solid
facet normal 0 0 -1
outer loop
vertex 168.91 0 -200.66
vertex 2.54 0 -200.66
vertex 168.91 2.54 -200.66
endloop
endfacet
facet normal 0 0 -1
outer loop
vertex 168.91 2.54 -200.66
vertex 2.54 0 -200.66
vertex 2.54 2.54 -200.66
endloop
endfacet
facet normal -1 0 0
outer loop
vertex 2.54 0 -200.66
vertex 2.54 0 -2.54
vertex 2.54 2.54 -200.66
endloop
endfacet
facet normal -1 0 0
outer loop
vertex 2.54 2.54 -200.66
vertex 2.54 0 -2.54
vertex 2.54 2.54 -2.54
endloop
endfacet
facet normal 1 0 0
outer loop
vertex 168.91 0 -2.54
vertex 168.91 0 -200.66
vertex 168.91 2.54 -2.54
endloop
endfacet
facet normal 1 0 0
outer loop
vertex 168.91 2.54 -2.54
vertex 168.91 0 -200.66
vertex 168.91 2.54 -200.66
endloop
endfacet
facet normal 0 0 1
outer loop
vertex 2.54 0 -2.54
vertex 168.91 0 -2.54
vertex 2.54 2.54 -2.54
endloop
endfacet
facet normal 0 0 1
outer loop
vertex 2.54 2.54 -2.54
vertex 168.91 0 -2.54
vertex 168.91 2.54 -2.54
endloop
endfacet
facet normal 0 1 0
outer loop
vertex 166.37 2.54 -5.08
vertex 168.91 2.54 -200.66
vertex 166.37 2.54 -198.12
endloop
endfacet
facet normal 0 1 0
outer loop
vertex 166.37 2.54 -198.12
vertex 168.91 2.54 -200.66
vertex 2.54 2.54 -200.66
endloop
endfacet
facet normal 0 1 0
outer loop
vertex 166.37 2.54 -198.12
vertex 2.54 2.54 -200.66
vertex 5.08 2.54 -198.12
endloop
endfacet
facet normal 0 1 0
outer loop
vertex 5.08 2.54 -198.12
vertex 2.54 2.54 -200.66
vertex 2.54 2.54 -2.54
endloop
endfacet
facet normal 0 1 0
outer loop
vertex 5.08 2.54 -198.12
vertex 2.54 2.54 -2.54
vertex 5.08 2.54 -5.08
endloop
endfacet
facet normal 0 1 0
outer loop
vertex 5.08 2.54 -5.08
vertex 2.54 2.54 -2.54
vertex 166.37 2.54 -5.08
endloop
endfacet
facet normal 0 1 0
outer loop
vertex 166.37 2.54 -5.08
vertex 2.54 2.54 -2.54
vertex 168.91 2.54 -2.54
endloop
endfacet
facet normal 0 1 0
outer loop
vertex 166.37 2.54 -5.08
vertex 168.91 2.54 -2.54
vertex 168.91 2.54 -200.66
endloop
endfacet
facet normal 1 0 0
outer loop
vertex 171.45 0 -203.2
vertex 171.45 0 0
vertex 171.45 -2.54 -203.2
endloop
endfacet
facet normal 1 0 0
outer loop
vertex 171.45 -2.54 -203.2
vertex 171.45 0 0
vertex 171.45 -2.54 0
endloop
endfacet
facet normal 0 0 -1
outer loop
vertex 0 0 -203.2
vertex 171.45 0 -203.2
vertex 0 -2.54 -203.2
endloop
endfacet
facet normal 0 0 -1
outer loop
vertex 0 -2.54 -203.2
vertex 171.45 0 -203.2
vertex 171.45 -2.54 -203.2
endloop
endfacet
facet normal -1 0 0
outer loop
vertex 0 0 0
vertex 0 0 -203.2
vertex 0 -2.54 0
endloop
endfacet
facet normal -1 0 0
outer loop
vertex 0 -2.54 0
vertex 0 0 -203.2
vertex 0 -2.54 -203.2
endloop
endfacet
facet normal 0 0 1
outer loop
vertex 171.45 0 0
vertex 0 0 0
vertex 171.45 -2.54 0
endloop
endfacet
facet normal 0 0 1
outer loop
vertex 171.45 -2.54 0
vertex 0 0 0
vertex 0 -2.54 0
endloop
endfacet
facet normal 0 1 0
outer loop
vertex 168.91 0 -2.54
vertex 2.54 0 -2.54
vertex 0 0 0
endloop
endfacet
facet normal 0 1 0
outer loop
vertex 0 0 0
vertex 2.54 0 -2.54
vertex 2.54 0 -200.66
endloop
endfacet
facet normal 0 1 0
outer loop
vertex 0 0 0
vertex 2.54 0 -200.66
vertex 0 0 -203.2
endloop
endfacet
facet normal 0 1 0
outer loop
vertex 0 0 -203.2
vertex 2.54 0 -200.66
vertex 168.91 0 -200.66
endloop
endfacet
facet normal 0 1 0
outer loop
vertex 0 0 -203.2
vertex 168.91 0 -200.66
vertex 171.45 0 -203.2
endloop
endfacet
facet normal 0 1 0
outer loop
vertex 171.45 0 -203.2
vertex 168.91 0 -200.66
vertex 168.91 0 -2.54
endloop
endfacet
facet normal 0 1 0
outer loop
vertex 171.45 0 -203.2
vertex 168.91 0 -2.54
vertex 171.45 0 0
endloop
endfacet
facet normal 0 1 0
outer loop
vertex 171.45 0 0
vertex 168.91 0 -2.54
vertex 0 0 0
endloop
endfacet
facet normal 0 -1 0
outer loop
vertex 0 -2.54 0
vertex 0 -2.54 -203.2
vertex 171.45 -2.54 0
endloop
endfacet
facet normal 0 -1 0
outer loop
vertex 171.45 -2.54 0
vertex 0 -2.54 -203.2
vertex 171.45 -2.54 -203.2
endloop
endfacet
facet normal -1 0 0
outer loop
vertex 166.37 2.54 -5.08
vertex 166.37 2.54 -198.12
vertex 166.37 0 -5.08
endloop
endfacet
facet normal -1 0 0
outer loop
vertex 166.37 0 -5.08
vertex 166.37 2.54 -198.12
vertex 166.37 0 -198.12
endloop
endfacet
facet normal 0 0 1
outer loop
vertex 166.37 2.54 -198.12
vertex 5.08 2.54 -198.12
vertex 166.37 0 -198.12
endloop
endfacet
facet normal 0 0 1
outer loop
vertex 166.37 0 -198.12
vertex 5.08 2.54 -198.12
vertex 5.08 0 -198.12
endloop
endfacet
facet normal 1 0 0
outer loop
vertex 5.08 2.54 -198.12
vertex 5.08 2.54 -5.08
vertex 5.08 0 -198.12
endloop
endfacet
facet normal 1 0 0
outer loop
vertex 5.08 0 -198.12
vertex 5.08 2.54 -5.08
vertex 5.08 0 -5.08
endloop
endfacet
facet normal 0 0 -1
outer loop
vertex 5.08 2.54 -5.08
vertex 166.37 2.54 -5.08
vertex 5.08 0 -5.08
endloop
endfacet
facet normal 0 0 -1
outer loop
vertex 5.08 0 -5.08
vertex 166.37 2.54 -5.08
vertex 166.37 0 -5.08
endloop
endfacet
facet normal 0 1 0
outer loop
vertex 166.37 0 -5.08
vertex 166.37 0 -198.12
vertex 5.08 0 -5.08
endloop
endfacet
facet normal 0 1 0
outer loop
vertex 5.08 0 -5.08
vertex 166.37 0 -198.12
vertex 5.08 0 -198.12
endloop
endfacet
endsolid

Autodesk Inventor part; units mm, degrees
ref_plane "YZ Plane" through (0, 0, 0) normal (1, 0, 0) x (0, 1, 0)
ref_plane "XZ Plane" through (0, 0, 0) normal (0, 1, 0) x (-1, 0, 0)
ref_plane "XY Plane" through (0, 0, 0) normal (0, 0, 1) x (1, 0, 0)
sketch "Sketch1" plane through (0, 0, 0) normal (0, 1, 0) x (-1, 0, 0)
  line L0 (0, 0) -> (-171.45, 0)
  line L1 (-171.45, 0) -> (-171.45, -203.2)
  line L2 (-171.45, -203.2) -> (0, -203.2)
  line L3 (0, -203.2) -> (0, 0)
  dimension "d0" = 171.45
  dimension "d2" = 203.2
extrude "Extrusion1" add sketch "Sketch1" against normal blind 2.54
sketch "Sketch4" plane through (0, -2.54, 0) normal (0, -1, 0) x (1, 0, 0)
  line L0 (168.91, -2.54) -> (2.54, -2.54)
  line L1 (2.54, -2.54) -> (2.54, -200.66)
  line L2 (2.54, -200.66) -> (168.91, -200.66)
  line L3 (168.91, -200.66) -> (168.91, -2.54)
  line L4 (171.45, 0) -> (171.45, -203.2) projected
  line L5 (171.45, -203.2) -> (0, -203.2) projected
  line L6 (0, 0) -> (171.45, 0) projected
  line L7 (0, -203.2) -> (0, 0) projected
  dimension "d20" = 2.54
  dimension "d21" = 2.54
  dimension "d22" = 2.54
  dimension "d23" = 2.54
extrude "Extrusion3" add sketch "Sketch4" against normal blind 5.08 contours L3 L2 L1 L0
sketch "Sketch6" plane through (0, 2.54, 0) normal (0, 1, 0) x (1, 0, 0)
  line L0 (5.08, 5.08) -> (166.37, 5.08)
  line L1 (166.37, 5.08) -> (166.37, 198.12)
  line L2 (166.37, 198.12) -> (5.08, 198.12)
  line L3 (5.08, 198.12) -> (5.08, 5.08)
  line L4 (2.54, 200.66) -> (2.54, 2.54) projected
  line L5 (168.91, 200.66) -> (2.54, 200.66) projected
  line L6 (168.91, 2.54) -> (168.91, 200.66) projected
  line L7 (2.54, 2.54) -> (168.91, 2.54) projected
  point P0 (0, 0)
  dimension "d24" = 2.54
  dimension "d25" = 2.54
  dimension "d26" = 2.54
  dimension "d27" = 2.54
extrude "Extrusion4" cut sketch "Sketch6" against normal blind 2.54 contours L3 L2 L1 L0
properties part number "Lid"
